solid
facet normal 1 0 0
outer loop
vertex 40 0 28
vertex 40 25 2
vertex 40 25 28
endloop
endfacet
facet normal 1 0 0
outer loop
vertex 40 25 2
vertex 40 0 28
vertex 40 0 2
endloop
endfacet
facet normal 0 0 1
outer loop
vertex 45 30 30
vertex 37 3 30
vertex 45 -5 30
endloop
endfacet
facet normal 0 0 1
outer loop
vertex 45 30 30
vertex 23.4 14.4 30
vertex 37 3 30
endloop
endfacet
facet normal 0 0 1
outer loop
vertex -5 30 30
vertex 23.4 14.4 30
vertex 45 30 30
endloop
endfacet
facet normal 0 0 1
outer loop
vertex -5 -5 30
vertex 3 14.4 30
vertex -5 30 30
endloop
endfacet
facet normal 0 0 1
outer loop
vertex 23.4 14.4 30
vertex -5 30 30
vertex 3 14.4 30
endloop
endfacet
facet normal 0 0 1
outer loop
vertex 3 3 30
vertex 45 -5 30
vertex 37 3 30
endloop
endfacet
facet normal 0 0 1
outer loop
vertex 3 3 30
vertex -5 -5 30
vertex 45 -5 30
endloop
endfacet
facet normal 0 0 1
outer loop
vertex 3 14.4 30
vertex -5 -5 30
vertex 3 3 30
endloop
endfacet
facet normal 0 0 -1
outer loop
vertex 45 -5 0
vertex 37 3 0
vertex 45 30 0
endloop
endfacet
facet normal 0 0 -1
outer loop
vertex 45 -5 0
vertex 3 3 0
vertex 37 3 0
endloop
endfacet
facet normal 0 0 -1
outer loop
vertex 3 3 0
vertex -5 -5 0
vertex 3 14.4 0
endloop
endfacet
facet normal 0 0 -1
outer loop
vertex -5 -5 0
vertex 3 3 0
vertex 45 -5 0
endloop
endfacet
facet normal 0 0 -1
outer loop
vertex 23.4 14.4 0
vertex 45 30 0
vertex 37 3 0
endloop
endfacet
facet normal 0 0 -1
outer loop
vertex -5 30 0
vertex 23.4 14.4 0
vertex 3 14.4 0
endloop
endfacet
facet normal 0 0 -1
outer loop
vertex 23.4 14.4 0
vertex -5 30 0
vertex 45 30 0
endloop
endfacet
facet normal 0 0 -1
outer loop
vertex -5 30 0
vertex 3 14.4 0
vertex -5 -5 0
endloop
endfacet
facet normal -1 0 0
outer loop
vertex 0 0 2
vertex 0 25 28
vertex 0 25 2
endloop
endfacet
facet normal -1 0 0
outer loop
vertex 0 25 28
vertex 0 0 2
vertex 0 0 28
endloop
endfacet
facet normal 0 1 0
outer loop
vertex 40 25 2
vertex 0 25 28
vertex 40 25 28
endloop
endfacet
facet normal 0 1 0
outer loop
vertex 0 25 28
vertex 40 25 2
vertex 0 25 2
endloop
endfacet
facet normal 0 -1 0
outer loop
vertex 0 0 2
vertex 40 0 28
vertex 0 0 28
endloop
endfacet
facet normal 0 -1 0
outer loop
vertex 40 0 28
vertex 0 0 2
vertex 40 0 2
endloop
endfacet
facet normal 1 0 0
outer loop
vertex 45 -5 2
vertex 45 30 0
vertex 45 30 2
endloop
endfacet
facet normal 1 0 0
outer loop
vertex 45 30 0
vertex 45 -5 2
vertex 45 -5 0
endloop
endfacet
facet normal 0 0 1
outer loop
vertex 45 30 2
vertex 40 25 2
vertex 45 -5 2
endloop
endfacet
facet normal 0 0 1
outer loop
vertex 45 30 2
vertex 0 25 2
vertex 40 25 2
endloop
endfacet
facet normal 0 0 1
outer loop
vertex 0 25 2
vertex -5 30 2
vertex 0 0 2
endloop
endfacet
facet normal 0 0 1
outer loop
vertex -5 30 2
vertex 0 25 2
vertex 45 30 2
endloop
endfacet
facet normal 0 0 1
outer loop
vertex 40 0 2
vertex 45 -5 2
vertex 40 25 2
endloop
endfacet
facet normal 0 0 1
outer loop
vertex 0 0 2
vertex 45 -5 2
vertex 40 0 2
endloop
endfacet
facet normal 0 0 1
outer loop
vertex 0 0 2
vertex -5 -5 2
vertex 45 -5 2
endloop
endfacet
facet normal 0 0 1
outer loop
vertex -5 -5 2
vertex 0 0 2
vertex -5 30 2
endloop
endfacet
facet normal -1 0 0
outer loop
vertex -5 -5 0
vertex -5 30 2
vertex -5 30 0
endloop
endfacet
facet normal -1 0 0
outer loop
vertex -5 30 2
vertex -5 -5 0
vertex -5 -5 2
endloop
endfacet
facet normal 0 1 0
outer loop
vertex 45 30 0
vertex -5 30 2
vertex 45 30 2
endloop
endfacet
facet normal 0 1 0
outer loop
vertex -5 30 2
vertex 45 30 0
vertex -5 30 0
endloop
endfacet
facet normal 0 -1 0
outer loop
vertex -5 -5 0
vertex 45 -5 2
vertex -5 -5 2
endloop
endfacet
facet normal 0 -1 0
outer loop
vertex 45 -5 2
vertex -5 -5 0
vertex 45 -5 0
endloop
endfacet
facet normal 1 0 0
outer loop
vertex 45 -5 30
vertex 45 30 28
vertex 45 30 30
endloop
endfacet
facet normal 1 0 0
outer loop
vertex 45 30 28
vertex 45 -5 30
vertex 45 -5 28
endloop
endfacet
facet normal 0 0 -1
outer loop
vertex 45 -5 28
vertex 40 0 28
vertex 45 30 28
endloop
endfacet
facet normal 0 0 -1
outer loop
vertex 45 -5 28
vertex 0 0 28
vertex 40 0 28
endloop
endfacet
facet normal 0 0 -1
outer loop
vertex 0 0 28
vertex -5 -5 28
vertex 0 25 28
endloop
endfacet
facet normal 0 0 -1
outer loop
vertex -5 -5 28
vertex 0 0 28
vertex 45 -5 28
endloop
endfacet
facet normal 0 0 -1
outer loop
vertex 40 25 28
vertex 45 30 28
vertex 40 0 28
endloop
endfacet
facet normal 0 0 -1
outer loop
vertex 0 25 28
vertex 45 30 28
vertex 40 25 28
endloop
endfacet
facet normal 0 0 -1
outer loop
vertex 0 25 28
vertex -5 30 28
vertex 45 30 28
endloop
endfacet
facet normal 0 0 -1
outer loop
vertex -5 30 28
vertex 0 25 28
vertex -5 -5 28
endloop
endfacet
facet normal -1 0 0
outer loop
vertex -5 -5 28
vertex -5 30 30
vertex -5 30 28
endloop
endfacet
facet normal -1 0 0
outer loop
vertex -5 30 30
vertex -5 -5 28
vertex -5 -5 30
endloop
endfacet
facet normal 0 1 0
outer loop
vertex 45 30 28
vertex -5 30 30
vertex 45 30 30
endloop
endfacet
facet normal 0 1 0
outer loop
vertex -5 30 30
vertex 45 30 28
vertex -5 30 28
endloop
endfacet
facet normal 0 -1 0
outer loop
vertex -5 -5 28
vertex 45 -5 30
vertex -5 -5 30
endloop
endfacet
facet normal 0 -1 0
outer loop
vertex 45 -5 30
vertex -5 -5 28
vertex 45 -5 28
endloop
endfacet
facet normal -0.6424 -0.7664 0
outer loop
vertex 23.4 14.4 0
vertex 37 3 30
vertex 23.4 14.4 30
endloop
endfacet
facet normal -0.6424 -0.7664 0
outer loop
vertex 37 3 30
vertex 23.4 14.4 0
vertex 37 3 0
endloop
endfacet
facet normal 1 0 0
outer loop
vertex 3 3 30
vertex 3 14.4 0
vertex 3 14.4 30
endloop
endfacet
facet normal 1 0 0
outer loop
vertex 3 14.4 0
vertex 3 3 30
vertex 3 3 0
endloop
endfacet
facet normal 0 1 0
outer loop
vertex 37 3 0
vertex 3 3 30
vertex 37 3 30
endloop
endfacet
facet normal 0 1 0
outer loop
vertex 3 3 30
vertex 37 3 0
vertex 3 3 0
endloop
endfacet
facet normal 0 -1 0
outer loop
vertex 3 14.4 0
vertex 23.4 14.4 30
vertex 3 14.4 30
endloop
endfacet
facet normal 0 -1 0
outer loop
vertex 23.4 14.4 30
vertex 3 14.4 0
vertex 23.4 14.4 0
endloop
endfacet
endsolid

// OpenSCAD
// Parameters
outer_width_top = 40;
outer_depth_top = 25;
outer_height = 30;

flange_thickness = 2;
flange_extension = 5;

wall_thickness = 3;

// Inner cavity dimensions (tapered)
inner_width_top = outer_width_top - 2 * wall_thickness;
inner_depth_top = outer_depth_top - 2 * wall_thickness;
inner_width_bottom = inner_width_top * 0.6;
inner_depth_bottom = inner_depth_top * 0.6;
inner_height = outer_height;

// Main module
module tapered_hollow_block() {
    difference() {
        // Outer block with flanges
        union() {
            // Main body
            cube([outer_width_top, outer_depth_top, outer_height], center=false);

            // Top flange
            translate([-flange_extension, -flange_extension, 0])
                cube([outer_width_top + 2 * flange_extension, outer_depth_top + 2 * flange_extension, flange_thickness]);

            // Bottom flange
            translate([-flange_extension, -flange_extension, outer_height - flange_thickness])
                cube([outer_width_top + 2 * flange_extension, outer_depth_top + 2 * flange_extension, flange_thickness]);
        }

        // Inner tapered cavity
        translate([wall_thickness, wall_thickness, 0])
            linear_extrude(height=inner_height)
                polygon(points=[
                    [0, 0],
                    [inner_width_top, 0],
                    [inner_width_bottom, inner_depth_bottom],
                    [0, inner_depth_bottom]
                ]);
    }
}

// Render the model
tapered_hollow_block();
